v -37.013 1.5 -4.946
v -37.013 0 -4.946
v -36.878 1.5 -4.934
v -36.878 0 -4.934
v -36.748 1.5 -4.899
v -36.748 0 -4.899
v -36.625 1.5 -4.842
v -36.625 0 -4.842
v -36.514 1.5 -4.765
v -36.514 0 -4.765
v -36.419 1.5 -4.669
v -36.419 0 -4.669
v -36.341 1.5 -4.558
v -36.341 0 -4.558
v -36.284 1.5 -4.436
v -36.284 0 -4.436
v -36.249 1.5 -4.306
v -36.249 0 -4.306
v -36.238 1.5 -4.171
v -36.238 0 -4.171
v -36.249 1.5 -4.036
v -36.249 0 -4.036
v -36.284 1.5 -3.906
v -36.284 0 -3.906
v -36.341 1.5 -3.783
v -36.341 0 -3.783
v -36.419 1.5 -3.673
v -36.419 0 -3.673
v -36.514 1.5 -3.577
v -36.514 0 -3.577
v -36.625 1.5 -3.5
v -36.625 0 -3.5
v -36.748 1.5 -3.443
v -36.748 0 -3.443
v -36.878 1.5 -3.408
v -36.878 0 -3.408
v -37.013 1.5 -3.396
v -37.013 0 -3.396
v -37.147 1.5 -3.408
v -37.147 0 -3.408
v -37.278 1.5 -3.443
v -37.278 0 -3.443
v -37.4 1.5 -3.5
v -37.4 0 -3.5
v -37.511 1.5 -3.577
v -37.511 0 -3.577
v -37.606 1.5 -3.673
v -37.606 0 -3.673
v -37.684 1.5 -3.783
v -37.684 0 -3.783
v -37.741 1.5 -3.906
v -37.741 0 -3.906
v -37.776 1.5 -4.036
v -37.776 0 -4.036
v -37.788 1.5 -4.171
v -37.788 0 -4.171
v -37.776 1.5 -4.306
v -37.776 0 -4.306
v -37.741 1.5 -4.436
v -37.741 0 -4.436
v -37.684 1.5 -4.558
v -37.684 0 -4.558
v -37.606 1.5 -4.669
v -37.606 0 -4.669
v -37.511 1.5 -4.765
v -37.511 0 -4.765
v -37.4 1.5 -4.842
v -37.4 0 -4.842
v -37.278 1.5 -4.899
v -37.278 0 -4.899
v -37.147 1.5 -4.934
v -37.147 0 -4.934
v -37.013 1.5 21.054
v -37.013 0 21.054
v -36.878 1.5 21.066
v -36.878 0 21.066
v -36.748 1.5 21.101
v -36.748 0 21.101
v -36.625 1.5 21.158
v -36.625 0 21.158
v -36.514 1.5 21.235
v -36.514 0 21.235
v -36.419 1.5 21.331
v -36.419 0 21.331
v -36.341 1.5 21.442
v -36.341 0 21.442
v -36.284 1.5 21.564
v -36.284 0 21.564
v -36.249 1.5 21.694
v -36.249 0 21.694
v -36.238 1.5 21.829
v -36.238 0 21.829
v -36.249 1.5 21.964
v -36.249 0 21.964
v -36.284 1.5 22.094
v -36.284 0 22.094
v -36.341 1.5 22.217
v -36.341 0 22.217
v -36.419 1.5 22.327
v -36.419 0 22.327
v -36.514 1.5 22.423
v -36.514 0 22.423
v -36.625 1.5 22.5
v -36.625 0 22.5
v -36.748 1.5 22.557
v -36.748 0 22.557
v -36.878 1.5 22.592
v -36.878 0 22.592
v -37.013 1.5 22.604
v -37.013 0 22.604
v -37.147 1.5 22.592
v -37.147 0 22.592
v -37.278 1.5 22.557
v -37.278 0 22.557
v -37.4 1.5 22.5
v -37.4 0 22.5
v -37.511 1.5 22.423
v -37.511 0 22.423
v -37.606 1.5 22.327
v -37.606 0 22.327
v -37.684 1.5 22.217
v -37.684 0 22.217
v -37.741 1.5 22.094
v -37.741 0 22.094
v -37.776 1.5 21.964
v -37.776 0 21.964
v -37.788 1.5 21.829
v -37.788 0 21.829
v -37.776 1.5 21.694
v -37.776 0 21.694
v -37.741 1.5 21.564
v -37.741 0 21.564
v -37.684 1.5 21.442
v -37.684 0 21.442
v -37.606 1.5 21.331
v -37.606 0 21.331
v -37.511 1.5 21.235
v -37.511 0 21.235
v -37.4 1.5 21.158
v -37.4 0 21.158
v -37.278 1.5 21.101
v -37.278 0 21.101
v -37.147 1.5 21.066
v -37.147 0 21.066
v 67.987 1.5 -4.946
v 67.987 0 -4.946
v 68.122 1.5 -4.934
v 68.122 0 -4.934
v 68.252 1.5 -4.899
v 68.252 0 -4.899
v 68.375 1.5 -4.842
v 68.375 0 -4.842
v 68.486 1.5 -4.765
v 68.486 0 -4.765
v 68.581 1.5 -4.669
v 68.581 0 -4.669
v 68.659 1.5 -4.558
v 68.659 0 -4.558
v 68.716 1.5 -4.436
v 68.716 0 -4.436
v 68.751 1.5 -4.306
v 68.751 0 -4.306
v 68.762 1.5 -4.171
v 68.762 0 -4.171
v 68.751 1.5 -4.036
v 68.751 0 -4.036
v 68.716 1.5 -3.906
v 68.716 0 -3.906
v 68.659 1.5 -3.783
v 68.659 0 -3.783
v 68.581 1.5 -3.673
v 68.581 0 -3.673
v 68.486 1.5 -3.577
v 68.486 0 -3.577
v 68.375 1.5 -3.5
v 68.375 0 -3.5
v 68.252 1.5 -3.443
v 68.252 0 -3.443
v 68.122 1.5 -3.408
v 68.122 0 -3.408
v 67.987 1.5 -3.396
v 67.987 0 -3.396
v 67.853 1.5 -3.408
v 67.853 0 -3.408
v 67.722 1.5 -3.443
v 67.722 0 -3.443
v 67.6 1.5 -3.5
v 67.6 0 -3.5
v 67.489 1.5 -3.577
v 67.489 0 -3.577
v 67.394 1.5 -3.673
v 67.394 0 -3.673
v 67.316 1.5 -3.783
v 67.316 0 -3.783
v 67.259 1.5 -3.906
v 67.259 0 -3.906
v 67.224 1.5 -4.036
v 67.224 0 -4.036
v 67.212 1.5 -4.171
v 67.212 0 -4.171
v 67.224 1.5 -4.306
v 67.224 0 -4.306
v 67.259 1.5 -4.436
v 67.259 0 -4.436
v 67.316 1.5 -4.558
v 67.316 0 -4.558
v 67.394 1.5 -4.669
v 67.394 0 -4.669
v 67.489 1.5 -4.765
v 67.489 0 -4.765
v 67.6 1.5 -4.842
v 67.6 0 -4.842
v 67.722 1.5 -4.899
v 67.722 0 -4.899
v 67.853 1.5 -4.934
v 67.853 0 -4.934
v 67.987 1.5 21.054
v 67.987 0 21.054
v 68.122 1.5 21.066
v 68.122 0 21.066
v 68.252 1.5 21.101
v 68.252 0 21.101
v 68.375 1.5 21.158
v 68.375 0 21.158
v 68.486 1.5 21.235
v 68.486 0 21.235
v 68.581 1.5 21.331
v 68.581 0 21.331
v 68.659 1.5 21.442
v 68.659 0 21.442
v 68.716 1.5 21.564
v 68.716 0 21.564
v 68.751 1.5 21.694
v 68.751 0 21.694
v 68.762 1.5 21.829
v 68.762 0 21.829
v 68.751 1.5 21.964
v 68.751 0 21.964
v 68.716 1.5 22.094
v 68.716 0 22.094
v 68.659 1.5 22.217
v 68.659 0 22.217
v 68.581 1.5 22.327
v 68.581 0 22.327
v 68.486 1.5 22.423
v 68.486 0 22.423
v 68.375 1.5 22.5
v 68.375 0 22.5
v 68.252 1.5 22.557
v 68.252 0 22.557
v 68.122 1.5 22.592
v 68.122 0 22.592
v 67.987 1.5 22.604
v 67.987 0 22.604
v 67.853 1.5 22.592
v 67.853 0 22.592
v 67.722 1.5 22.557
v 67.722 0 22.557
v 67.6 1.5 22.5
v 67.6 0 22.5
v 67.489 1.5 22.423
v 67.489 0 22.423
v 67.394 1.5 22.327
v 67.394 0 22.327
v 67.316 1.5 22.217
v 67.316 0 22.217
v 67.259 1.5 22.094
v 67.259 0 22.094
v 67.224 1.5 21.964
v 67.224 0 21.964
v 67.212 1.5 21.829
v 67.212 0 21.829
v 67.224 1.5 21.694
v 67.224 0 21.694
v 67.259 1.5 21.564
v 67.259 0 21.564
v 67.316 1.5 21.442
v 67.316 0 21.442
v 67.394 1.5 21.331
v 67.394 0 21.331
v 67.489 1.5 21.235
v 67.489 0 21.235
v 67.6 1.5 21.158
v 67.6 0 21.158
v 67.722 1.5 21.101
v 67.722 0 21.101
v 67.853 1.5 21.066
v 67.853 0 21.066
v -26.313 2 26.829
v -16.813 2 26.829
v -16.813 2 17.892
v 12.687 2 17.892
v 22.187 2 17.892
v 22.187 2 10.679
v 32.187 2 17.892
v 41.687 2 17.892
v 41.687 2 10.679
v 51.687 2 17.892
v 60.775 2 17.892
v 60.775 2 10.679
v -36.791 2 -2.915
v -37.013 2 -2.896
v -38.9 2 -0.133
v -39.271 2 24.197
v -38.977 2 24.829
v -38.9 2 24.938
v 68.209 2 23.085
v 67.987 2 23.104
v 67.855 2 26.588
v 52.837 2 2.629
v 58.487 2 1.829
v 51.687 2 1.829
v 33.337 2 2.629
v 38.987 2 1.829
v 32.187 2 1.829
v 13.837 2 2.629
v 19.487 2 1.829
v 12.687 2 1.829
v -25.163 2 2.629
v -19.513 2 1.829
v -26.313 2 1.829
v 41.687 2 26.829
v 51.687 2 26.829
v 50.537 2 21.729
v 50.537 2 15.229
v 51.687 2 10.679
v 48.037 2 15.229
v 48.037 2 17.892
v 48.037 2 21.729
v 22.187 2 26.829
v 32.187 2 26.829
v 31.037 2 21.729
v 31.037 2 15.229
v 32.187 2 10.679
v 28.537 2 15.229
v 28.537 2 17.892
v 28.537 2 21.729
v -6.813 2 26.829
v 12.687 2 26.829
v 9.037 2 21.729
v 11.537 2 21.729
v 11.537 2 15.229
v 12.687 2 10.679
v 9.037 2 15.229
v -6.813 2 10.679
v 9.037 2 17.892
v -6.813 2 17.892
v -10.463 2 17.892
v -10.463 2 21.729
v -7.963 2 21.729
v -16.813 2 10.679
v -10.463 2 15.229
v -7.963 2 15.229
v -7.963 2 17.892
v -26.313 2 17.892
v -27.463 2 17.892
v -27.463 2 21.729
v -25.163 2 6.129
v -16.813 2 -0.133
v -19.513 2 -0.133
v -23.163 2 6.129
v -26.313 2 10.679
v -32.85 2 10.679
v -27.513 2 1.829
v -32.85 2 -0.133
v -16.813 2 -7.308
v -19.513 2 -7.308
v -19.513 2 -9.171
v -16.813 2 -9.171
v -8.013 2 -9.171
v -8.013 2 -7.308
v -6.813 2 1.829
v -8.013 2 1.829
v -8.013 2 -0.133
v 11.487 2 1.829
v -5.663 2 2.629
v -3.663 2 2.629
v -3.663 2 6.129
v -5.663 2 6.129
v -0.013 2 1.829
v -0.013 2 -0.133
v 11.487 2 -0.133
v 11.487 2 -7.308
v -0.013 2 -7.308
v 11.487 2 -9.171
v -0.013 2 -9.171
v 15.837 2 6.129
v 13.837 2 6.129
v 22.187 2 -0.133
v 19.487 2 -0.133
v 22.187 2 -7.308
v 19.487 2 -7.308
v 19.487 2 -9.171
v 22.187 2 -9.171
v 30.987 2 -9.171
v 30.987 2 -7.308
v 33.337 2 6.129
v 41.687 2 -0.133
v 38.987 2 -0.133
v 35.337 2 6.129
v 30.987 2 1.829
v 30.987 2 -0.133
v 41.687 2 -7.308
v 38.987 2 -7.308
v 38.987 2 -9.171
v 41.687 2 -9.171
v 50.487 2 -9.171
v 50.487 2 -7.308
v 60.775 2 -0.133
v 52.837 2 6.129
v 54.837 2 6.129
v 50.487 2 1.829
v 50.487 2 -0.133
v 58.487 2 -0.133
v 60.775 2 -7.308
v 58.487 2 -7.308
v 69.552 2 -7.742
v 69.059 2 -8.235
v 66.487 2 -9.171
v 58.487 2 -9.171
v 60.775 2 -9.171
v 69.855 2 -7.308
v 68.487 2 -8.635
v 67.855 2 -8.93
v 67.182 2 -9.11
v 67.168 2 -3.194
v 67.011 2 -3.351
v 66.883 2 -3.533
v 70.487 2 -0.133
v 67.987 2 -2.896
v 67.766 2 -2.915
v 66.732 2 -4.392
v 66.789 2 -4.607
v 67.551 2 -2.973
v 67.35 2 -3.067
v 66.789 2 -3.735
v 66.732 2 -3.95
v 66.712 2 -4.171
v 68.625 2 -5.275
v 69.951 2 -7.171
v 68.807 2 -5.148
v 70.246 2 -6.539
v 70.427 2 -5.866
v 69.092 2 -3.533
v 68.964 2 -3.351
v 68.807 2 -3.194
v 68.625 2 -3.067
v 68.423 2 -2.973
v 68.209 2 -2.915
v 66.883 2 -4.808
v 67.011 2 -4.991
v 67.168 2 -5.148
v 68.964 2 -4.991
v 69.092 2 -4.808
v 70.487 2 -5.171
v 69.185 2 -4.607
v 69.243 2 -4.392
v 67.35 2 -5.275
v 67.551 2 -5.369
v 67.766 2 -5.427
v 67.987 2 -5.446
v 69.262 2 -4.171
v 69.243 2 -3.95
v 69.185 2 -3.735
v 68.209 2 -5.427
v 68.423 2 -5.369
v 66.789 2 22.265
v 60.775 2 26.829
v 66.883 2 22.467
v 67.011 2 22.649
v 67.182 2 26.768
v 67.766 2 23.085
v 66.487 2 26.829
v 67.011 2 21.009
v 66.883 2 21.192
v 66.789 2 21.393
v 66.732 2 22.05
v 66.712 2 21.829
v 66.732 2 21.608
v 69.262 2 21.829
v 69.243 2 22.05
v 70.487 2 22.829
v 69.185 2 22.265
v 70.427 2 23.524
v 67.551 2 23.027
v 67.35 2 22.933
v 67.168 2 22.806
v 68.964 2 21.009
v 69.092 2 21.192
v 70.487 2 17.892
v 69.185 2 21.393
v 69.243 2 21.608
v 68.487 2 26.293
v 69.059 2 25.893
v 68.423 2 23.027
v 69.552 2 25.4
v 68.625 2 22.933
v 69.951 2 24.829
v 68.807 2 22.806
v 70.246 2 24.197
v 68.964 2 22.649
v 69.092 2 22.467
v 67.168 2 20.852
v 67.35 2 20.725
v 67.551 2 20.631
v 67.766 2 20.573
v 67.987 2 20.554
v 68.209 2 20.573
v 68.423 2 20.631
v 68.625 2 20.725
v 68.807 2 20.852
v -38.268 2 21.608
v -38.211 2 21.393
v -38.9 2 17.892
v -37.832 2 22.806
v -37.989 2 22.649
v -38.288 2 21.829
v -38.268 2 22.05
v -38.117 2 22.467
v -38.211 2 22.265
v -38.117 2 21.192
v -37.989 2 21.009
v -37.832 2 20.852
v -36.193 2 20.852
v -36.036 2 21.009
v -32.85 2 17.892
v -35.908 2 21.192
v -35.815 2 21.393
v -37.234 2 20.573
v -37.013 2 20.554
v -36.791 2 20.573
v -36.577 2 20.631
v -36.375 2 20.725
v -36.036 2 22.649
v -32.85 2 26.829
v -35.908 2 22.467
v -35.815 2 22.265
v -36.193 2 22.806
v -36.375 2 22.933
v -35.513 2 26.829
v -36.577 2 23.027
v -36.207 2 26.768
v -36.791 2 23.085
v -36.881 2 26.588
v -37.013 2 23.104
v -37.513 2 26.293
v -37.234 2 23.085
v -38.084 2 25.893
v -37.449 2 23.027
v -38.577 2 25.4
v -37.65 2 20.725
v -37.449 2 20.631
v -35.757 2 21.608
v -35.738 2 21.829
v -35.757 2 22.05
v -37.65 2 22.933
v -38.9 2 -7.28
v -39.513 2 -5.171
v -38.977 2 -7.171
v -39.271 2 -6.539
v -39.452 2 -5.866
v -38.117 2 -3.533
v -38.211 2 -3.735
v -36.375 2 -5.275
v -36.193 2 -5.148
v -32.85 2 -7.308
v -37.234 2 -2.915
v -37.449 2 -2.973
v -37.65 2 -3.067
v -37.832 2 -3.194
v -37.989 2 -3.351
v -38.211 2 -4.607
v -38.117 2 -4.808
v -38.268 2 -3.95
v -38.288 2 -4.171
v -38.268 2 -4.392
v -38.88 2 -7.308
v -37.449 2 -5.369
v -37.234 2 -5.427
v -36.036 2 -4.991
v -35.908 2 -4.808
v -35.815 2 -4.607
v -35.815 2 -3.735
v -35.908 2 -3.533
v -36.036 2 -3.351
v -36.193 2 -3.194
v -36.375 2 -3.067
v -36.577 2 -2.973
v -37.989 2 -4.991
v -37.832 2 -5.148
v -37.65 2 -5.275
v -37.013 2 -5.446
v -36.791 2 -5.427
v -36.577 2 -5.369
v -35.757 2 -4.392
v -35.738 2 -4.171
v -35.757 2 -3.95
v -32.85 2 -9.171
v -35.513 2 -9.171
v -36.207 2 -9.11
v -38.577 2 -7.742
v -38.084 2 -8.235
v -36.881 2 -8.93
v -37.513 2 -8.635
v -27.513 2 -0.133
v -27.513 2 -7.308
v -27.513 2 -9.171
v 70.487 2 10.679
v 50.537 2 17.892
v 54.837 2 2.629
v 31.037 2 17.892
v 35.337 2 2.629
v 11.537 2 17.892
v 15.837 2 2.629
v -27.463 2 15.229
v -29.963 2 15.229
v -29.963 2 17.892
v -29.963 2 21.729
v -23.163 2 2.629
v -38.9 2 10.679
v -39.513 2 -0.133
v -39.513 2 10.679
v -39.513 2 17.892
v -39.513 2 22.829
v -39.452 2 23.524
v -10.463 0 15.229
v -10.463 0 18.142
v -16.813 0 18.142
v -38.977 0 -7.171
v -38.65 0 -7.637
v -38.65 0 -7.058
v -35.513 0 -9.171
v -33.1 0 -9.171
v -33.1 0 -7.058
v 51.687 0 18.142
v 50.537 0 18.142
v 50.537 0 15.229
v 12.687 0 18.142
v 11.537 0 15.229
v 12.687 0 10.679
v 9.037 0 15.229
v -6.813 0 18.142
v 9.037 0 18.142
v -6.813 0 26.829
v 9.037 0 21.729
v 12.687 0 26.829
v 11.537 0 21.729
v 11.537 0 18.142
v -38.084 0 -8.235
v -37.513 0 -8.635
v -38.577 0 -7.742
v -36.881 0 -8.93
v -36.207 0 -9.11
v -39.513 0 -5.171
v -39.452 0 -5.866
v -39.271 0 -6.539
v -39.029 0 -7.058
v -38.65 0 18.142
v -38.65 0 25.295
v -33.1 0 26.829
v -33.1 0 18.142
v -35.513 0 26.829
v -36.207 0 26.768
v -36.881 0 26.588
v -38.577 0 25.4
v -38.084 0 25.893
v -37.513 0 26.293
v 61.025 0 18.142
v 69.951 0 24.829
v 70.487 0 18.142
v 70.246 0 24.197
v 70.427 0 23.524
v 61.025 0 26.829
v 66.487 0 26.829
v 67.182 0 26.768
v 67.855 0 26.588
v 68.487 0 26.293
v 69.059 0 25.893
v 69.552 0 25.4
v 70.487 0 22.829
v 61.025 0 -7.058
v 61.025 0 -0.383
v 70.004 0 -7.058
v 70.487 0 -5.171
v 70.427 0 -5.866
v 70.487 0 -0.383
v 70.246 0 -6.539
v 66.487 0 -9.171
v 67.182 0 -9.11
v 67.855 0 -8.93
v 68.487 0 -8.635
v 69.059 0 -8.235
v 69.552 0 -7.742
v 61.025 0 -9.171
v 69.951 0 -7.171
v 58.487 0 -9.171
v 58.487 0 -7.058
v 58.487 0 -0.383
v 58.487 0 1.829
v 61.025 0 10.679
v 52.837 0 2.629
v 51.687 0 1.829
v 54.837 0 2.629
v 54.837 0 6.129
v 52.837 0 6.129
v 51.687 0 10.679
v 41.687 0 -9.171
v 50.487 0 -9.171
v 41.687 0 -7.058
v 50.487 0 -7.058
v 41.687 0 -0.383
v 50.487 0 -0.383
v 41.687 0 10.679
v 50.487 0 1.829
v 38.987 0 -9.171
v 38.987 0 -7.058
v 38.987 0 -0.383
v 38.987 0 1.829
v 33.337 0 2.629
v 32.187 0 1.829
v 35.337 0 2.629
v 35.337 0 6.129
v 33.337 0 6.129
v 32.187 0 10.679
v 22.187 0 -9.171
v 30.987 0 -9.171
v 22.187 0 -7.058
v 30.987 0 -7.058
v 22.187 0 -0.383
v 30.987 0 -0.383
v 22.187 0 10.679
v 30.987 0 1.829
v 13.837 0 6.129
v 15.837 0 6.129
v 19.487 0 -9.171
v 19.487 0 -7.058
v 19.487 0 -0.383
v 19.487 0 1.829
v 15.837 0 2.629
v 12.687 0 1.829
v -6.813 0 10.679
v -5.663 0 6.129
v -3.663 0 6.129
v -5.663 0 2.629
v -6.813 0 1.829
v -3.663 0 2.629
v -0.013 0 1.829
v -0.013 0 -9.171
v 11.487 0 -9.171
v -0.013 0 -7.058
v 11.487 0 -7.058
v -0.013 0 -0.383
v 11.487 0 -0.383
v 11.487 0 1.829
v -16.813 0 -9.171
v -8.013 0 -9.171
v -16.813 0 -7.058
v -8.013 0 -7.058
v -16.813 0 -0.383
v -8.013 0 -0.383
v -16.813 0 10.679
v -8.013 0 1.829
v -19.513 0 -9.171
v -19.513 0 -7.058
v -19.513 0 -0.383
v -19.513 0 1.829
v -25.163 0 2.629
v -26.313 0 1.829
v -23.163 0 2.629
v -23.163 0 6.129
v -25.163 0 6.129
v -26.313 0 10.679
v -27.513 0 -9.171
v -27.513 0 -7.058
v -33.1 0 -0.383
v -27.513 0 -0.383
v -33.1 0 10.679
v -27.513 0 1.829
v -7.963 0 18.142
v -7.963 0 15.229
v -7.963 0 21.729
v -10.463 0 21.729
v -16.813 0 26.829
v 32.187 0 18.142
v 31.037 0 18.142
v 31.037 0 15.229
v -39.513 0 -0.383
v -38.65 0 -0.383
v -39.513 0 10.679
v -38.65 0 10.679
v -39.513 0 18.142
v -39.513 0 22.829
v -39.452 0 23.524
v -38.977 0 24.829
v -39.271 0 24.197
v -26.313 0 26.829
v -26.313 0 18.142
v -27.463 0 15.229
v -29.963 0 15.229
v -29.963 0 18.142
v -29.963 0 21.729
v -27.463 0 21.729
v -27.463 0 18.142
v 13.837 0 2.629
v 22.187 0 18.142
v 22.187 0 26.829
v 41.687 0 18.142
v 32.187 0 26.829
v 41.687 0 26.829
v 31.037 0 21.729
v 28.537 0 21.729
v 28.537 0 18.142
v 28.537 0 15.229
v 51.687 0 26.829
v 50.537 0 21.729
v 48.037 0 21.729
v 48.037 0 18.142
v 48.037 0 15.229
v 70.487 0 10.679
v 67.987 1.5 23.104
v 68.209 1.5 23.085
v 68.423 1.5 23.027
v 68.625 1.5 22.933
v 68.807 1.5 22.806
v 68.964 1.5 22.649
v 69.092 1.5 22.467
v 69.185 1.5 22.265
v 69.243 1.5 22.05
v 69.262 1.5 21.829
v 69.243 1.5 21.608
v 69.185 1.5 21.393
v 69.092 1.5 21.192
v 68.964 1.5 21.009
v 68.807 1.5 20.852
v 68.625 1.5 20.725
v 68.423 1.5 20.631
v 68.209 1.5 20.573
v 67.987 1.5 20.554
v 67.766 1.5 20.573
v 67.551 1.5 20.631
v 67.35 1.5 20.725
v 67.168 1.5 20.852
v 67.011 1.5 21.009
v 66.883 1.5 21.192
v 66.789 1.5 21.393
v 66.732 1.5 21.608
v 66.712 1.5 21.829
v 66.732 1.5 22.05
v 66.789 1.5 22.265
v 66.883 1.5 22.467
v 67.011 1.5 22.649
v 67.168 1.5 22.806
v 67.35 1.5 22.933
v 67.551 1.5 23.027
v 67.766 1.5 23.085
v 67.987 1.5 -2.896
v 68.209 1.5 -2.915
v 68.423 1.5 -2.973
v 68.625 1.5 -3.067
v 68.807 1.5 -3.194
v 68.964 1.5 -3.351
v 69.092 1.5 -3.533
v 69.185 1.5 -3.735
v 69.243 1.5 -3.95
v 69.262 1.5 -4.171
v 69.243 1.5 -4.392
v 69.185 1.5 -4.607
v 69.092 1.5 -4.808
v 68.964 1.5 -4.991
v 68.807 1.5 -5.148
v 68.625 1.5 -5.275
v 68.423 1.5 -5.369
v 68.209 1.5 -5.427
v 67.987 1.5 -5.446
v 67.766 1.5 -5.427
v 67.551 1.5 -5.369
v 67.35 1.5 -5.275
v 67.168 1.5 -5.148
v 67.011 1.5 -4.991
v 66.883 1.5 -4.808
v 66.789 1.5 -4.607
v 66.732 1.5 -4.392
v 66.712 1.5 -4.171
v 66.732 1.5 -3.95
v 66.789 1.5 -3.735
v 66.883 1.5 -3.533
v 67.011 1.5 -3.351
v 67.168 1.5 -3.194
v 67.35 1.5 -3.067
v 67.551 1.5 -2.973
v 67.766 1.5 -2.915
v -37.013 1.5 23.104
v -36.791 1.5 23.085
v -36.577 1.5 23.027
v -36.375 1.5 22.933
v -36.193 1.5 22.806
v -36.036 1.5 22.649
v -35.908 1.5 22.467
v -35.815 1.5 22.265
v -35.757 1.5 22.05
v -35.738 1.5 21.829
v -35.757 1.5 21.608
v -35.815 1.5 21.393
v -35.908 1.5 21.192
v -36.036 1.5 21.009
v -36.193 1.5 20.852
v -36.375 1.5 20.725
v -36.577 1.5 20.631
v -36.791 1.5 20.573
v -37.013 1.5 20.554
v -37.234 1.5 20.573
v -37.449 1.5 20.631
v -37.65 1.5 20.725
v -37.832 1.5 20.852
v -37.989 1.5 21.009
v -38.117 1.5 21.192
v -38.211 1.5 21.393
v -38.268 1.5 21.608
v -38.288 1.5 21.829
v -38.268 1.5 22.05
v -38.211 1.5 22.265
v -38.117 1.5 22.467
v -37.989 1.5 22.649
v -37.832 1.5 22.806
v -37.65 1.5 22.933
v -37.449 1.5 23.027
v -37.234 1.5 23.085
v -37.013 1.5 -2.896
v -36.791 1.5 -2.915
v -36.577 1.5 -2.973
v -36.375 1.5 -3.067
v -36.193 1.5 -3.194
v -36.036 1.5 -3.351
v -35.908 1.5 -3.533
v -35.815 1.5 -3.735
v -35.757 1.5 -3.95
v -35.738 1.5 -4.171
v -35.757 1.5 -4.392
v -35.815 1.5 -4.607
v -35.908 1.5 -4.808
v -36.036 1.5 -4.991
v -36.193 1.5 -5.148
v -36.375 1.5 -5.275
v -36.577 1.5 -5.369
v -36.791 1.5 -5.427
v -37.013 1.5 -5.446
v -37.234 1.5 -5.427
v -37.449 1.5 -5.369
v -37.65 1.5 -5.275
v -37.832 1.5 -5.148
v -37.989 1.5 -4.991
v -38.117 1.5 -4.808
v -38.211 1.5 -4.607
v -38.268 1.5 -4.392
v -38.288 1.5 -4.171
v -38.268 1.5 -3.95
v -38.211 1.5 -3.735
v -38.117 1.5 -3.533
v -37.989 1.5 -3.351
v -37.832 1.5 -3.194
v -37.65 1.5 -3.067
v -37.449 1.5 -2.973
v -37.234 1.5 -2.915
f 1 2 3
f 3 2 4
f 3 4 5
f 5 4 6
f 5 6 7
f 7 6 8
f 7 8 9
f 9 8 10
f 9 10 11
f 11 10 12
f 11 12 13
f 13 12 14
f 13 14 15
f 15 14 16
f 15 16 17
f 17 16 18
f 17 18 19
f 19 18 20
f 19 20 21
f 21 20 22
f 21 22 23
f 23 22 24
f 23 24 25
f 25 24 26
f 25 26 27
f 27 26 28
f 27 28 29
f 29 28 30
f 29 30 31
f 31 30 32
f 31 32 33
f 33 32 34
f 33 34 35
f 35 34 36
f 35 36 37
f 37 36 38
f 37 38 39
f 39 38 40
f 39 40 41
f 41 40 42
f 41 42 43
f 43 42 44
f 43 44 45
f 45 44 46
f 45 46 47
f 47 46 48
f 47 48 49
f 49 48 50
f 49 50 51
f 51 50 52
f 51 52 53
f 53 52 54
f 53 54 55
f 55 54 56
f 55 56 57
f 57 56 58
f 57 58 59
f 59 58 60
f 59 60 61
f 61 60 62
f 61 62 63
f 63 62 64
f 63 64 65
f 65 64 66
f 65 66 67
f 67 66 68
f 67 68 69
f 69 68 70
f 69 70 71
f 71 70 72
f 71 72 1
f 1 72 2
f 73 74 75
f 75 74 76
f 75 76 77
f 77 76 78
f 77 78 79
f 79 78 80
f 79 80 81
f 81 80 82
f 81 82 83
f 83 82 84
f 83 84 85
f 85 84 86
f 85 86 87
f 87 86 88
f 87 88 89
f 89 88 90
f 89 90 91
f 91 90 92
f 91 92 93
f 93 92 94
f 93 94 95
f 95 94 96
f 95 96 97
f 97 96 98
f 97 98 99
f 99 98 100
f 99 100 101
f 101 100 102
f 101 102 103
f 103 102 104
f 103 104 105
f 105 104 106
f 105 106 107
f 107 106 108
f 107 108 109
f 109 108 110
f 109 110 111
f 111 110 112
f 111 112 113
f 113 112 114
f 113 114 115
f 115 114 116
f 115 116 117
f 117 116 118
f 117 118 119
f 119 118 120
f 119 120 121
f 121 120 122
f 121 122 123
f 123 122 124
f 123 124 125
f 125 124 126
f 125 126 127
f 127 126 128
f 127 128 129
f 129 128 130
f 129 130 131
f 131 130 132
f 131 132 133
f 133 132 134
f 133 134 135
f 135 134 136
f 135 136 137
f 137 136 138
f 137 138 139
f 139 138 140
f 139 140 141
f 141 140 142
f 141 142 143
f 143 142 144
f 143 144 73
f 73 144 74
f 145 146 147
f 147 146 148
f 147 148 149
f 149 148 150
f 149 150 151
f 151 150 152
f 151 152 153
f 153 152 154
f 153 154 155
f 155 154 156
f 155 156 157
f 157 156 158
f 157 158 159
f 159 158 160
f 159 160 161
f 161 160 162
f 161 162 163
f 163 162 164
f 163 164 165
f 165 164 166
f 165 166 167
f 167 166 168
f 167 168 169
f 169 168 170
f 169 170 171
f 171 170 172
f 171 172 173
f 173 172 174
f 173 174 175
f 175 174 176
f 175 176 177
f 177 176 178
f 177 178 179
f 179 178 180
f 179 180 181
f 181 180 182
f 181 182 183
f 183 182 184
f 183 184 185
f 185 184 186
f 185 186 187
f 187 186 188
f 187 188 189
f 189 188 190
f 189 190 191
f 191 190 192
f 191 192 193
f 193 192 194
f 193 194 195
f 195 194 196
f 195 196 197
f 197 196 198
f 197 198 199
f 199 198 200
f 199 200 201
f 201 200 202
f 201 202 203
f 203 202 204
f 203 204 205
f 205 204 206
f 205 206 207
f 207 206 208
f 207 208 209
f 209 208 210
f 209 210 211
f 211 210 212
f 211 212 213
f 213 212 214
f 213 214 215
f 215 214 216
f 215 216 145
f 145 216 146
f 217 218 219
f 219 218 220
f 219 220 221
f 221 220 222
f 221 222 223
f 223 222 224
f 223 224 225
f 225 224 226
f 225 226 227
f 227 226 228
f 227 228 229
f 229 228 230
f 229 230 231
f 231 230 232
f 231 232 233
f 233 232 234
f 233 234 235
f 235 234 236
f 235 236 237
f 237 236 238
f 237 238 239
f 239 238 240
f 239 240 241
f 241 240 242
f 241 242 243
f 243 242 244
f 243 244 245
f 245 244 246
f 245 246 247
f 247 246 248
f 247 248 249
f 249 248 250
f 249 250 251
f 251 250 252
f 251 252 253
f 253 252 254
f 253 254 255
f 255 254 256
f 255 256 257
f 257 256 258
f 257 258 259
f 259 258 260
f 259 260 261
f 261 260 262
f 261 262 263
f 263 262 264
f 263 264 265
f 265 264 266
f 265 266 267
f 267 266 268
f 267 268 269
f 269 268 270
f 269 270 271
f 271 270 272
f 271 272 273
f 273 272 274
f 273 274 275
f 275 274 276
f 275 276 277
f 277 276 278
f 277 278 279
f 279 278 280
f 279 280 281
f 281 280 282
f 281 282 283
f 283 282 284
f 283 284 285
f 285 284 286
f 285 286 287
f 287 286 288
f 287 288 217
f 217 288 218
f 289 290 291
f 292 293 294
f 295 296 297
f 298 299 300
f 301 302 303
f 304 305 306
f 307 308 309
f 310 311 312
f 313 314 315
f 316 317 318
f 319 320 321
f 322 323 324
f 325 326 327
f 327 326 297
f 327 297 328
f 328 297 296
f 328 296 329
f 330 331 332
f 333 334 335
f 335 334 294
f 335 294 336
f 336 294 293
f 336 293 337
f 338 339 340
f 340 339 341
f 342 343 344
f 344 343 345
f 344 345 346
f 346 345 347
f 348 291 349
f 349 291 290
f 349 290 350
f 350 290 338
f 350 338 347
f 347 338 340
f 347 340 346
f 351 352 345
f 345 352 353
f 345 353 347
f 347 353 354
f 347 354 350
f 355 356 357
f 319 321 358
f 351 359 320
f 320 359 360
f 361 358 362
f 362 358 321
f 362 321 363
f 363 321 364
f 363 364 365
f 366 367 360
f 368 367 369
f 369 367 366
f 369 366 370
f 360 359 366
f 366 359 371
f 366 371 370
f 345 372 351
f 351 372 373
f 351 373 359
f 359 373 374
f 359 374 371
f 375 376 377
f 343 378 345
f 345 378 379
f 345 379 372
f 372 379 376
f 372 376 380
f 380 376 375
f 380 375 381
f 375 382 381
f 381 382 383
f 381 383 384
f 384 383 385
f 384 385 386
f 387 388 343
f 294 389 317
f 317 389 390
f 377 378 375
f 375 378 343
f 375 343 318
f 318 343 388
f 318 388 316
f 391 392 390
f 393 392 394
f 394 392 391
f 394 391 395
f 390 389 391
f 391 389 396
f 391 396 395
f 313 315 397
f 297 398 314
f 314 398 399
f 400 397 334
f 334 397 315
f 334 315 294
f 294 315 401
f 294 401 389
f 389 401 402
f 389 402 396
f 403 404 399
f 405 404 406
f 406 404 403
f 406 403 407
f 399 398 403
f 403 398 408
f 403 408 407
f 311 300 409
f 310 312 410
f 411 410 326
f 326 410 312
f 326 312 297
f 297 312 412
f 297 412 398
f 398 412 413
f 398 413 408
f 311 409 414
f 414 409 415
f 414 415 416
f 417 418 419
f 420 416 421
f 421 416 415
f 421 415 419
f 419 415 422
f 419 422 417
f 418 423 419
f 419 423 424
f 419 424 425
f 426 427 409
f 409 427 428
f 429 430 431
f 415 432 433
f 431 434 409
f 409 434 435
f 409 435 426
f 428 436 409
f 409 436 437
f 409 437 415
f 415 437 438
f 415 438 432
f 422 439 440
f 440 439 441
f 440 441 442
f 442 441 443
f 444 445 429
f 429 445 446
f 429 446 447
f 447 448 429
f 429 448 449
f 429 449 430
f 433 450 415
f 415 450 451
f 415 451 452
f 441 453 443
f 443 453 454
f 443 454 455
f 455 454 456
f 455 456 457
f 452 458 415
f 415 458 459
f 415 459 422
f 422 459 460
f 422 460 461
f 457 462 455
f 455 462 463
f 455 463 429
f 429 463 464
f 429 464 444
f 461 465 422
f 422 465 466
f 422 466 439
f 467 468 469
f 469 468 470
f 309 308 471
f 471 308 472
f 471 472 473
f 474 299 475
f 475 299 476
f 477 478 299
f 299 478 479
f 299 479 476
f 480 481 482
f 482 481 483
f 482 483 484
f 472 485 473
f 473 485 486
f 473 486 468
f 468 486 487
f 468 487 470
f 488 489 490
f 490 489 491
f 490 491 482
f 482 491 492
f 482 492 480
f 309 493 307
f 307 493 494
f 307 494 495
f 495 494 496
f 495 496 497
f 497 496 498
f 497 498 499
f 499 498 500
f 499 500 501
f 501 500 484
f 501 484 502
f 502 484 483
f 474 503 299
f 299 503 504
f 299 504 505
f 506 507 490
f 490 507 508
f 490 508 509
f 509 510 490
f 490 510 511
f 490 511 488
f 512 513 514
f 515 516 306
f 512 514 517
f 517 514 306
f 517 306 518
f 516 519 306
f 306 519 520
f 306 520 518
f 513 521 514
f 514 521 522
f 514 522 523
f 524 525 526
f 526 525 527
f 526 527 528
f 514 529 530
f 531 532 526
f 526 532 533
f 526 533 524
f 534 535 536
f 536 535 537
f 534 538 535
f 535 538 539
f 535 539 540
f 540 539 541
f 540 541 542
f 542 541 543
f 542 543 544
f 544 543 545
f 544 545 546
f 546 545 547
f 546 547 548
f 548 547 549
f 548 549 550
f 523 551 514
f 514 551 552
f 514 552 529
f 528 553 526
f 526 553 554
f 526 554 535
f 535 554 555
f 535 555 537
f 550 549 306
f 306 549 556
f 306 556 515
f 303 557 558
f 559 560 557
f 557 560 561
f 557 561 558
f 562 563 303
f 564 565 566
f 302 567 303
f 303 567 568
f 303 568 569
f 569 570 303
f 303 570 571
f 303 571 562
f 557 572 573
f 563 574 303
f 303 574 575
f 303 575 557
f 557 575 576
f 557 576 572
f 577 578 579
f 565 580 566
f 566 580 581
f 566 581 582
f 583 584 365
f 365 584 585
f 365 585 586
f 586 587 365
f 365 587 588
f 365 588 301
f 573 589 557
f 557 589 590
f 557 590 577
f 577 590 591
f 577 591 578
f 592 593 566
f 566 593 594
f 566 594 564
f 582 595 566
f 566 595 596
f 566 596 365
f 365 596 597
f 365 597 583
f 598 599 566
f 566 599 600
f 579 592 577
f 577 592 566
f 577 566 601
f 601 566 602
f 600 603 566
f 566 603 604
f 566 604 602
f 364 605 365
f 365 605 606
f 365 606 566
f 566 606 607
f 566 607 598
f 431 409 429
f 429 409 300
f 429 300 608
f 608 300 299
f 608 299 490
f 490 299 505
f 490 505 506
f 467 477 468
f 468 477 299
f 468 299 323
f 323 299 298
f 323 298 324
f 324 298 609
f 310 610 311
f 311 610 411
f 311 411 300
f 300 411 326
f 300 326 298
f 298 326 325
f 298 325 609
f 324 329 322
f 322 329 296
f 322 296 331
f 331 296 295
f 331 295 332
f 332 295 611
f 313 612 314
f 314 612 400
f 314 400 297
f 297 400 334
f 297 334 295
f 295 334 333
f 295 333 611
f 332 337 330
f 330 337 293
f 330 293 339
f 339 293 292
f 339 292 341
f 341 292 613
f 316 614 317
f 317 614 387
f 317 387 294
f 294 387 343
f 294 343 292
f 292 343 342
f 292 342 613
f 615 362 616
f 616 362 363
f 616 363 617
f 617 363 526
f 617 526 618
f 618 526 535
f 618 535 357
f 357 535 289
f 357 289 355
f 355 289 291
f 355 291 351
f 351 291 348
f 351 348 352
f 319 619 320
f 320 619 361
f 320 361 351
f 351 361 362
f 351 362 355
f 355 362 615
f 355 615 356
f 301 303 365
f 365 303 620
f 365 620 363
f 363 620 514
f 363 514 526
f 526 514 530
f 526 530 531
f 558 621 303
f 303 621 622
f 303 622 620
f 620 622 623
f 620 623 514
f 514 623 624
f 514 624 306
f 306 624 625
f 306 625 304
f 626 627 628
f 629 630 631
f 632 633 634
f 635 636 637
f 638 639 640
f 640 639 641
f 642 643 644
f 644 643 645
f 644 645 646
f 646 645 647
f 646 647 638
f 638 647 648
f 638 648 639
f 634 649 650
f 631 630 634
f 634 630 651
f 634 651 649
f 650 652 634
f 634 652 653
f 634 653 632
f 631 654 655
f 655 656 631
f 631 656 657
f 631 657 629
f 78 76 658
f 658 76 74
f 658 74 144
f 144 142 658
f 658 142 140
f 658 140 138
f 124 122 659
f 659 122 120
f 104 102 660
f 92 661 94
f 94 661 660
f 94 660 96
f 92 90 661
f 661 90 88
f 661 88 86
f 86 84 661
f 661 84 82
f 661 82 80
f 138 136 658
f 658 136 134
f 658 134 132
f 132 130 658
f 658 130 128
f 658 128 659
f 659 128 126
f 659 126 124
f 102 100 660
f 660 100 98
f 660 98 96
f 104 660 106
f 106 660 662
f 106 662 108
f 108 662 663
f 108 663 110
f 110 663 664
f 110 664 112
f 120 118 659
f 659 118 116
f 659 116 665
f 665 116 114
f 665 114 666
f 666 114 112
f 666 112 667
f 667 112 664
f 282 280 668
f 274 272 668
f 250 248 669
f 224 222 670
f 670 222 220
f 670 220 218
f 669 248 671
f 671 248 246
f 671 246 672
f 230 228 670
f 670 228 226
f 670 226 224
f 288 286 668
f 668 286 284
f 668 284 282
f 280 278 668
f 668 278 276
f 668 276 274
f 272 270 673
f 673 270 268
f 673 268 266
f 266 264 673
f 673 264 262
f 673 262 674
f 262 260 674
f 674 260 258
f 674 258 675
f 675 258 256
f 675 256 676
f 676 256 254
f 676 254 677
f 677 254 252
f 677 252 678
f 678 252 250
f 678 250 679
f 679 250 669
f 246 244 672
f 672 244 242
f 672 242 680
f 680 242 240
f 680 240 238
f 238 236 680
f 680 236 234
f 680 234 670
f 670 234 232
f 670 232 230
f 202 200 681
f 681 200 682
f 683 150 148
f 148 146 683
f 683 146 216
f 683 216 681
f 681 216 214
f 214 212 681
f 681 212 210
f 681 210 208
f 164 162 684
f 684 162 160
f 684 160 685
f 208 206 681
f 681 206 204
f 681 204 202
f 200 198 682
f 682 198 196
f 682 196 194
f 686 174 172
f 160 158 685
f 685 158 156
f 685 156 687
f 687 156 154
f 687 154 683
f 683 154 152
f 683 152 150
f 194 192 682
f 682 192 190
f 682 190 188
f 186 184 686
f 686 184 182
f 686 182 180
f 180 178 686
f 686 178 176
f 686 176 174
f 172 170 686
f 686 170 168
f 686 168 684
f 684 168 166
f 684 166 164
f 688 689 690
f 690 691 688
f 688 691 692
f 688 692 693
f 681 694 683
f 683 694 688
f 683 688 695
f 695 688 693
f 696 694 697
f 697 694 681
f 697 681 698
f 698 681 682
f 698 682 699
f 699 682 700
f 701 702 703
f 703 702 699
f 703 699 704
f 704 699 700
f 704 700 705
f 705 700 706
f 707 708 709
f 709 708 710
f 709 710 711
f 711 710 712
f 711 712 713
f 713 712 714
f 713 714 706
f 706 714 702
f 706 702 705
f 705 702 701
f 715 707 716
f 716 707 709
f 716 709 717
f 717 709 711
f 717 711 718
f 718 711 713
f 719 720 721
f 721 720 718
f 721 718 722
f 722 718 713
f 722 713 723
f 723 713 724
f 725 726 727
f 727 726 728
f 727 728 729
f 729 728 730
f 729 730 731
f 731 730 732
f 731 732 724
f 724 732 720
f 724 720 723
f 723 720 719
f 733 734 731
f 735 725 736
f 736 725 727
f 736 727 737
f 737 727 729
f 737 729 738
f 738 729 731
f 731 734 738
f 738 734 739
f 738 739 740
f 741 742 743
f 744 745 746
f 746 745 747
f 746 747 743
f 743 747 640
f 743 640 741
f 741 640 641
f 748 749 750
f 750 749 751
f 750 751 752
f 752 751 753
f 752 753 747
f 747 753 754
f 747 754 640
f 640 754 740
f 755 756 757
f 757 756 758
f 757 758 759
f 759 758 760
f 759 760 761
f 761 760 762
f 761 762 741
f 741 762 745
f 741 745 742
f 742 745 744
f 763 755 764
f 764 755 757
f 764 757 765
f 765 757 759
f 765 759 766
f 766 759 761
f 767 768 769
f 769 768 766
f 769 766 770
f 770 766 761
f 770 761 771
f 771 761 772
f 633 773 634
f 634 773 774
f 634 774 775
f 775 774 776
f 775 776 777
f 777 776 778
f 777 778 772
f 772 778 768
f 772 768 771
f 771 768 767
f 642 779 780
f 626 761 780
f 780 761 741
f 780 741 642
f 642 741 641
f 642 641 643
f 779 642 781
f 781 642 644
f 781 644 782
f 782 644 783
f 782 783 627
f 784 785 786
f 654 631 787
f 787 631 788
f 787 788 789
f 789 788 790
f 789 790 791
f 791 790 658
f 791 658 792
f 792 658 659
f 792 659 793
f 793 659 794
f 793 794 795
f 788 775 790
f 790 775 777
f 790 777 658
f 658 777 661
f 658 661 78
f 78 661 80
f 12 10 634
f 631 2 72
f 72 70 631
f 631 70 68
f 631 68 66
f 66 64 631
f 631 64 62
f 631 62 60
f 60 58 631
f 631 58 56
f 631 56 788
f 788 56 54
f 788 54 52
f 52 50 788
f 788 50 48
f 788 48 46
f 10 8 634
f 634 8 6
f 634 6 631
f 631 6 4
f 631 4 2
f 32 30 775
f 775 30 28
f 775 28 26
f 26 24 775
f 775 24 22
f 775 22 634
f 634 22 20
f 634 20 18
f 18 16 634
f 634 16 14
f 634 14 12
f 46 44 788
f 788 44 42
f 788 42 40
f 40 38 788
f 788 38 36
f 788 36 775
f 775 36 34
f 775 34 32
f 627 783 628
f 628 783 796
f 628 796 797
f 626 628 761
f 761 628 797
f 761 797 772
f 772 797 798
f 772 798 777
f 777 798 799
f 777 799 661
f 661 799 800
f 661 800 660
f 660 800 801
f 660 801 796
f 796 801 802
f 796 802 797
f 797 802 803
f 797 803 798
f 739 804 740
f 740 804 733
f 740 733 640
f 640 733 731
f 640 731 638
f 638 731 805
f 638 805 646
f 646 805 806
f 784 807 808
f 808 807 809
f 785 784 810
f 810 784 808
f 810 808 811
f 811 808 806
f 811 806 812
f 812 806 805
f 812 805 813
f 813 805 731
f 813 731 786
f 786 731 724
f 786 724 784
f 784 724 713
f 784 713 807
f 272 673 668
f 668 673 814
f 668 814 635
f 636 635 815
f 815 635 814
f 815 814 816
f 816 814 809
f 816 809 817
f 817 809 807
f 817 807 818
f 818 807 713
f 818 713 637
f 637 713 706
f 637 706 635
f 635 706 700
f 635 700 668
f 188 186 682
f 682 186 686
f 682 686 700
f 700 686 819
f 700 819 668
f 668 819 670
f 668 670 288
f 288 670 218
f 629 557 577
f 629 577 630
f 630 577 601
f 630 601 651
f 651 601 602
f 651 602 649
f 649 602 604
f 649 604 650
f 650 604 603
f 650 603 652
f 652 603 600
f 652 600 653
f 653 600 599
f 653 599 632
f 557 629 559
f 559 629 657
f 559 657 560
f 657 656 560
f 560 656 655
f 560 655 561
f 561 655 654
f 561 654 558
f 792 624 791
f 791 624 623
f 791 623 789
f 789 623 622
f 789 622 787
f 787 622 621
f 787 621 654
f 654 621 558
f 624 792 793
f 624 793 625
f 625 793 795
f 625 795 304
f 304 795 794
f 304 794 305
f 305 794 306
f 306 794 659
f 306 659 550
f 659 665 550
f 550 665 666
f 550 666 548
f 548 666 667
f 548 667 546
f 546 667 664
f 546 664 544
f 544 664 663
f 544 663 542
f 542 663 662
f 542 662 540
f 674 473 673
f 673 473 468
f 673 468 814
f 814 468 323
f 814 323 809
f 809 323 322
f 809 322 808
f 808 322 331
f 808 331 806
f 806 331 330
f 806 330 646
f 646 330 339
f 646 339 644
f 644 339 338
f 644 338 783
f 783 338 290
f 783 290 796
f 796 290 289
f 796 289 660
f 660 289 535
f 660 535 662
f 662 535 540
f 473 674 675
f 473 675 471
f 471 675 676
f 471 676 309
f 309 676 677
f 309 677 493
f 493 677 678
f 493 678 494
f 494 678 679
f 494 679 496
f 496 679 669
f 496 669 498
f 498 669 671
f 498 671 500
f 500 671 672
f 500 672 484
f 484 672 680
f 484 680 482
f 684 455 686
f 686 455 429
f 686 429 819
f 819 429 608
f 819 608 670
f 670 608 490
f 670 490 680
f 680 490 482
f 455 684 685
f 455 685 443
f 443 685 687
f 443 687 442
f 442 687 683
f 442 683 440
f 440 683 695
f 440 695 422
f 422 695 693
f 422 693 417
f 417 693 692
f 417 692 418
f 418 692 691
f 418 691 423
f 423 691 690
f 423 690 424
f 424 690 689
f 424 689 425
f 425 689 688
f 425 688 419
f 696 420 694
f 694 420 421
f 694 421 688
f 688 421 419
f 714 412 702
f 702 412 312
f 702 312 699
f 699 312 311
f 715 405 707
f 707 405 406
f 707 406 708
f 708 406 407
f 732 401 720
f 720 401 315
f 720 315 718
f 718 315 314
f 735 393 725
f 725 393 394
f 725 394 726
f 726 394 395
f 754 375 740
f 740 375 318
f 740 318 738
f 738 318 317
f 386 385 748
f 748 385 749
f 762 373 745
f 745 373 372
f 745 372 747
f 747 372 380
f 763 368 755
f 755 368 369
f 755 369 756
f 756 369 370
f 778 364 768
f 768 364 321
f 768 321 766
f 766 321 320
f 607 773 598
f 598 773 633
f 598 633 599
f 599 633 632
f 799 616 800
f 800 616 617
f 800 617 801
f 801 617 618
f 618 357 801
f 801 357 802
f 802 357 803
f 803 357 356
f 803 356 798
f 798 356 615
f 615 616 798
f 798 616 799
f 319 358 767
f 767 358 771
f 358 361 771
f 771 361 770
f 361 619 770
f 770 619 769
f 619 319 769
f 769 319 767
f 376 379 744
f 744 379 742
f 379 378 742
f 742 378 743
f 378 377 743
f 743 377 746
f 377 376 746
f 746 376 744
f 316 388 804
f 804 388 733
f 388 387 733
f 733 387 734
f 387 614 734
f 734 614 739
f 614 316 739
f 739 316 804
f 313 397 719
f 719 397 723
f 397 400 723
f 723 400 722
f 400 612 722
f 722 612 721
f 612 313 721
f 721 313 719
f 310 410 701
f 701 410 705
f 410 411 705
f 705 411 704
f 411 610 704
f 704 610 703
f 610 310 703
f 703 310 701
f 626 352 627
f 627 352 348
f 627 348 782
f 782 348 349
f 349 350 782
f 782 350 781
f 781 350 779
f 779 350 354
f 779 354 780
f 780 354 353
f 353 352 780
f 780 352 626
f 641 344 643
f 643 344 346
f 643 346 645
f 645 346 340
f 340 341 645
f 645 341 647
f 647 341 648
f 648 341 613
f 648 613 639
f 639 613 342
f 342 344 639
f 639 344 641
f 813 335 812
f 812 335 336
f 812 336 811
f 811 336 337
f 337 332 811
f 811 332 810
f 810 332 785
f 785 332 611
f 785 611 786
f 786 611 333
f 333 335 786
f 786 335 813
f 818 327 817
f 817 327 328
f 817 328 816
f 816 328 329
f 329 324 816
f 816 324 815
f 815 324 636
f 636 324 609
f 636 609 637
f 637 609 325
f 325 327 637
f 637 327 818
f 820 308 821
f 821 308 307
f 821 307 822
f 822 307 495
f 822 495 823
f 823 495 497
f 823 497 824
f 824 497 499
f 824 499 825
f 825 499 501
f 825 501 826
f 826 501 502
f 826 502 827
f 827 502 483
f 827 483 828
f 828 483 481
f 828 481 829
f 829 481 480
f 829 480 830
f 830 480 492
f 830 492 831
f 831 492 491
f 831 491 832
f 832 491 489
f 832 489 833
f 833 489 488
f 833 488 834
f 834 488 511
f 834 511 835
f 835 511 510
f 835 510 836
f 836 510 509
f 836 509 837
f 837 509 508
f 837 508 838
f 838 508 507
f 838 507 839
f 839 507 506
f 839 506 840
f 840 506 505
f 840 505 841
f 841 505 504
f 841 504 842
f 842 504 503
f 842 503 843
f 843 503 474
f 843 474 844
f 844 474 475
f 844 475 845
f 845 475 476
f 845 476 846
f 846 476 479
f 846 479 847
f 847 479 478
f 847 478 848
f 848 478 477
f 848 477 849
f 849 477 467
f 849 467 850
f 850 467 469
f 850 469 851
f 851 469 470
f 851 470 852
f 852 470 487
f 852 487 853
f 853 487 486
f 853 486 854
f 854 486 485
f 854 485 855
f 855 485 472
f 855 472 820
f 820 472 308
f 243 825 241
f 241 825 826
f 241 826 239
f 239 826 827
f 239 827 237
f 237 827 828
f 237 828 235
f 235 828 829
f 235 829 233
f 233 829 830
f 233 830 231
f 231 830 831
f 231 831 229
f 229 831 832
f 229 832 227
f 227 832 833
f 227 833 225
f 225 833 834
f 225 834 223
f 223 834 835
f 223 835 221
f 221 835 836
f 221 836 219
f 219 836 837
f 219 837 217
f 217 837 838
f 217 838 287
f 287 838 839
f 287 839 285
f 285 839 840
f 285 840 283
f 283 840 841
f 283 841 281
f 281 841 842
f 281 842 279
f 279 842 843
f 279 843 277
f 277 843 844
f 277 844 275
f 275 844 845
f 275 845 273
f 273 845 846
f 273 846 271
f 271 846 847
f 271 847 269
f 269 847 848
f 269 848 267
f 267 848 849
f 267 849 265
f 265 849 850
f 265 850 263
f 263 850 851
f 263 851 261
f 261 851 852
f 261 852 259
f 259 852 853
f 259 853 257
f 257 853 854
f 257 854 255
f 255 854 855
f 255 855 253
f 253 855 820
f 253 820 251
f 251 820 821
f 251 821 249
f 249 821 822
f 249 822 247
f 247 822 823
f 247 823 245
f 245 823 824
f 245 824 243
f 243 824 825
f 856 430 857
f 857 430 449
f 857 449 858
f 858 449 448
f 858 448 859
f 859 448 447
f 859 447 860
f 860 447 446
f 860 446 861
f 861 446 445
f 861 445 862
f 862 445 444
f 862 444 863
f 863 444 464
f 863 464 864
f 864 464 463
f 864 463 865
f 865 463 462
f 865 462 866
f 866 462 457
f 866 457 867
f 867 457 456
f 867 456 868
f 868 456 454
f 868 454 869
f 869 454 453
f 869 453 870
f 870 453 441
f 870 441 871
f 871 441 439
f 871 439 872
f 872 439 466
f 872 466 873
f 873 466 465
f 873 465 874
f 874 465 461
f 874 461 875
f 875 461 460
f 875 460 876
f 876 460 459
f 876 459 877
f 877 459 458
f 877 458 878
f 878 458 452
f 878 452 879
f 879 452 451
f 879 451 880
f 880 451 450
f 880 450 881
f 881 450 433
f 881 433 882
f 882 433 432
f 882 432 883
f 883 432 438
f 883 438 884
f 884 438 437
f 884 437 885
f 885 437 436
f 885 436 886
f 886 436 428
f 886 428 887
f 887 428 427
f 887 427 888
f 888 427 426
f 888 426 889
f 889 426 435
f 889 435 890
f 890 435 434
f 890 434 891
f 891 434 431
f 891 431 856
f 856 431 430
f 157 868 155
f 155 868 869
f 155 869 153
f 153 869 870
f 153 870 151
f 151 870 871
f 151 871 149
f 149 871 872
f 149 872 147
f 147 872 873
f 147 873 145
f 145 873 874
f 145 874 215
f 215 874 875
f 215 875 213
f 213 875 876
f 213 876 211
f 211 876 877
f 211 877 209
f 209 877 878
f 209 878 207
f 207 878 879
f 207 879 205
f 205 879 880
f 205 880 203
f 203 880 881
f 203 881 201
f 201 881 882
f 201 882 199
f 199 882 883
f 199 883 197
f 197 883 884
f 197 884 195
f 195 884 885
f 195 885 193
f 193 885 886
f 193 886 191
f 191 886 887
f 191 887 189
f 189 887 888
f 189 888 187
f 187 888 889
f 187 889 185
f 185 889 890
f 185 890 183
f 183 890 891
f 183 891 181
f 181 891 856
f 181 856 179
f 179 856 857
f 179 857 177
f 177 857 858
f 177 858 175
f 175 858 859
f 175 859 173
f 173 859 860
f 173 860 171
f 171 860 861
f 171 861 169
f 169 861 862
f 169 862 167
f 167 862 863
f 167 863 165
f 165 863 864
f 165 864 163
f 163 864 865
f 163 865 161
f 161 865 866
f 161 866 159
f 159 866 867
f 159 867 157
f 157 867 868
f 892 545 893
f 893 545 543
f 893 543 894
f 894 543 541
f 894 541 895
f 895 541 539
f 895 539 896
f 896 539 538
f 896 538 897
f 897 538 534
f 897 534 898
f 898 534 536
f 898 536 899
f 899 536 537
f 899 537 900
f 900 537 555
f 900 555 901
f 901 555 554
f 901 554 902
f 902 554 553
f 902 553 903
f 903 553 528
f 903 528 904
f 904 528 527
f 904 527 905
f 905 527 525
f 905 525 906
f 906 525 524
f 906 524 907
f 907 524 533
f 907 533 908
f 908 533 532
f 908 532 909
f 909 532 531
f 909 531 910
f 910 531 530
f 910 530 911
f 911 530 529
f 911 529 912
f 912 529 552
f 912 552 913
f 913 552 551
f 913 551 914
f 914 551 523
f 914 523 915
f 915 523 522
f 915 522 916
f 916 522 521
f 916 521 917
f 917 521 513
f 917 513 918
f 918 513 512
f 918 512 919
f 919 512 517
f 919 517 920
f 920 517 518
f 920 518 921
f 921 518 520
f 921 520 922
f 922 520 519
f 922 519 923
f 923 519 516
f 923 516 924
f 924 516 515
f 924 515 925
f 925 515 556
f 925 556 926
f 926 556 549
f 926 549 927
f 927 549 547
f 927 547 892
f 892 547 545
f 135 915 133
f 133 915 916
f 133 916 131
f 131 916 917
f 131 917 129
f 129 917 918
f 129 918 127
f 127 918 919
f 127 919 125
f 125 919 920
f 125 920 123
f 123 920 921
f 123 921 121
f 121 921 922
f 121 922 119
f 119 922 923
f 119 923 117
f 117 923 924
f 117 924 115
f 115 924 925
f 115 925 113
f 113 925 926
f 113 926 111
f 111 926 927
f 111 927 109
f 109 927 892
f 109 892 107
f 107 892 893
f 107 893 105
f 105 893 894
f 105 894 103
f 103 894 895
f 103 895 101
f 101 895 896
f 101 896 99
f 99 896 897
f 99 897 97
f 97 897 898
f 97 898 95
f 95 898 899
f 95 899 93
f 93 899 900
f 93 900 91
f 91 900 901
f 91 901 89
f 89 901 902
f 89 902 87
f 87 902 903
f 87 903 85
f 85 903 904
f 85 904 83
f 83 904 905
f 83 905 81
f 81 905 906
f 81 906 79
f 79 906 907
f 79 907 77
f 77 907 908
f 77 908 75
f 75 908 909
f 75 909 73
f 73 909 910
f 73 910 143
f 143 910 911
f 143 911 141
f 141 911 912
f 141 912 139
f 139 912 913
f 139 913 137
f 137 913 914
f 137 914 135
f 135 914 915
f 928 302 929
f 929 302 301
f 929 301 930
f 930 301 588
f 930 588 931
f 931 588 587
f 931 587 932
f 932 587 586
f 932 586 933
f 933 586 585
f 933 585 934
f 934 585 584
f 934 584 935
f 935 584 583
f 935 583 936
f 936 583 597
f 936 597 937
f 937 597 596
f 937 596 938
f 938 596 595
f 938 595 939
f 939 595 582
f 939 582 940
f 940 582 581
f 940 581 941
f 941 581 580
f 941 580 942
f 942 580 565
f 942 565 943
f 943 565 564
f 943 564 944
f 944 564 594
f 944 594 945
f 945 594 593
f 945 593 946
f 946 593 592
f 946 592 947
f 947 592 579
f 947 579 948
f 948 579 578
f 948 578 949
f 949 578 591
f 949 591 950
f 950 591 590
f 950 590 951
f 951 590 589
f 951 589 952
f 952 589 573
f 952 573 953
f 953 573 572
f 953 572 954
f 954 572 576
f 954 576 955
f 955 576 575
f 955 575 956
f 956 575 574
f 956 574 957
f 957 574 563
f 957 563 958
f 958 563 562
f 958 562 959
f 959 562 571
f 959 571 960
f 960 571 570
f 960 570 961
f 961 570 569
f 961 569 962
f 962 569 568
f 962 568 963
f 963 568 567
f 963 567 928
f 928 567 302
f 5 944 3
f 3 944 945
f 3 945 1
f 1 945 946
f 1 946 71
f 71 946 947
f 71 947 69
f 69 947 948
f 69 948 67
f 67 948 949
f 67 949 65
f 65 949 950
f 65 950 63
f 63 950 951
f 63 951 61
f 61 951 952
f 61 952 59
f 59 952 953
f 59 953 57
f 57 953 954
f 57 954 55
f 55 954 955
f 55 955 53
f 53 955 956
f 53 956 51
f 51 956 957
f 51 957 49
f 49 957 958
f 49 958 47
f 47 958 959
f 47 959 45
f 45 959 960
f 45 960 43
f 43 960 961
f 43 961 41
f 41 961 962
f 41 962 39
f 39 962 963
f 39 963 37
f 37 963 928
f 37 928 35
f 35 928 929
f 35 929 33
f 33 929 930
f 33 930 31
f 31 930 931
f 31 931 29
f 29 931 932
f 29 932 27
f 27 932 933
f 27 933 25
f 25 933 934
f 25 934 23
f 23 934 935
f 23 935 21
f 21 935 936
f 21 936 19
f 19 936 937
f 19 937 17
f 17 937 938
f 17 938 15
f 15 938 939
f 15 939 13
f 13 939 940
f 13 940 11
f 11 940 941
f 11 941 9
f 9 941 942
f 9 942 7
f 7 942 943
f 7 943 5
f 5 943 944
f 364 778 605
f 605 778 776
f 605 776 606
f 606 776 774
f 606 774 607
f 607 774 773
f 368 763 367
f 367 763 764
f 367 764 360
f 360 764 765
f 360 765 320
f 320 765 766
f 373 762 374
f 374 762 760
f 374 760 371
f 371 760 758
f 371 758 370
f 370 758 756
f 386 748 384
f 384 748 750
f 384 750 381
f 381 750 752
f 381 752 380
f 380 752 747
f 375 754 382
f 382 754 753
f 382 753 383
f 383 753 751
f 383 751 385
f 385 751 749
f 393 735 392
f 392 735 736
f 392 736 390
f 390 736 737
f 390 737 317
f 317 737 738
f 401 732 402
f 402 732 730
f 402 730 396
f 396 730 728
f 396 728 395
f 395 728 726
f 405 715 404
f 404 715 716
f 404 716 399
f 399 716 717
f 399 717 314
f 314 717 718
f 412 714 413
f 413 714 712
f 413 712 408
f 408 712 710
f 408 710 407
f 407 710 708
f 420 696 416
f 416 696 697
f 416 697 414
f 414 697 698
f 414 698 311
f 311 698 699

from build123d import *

# Parameters (mm, degrees)
SKETCH1_R           = 0.775
SKETCH1_W           = 2
SKETCH1_H           = 3.5
SKETCH1_W_2         = 2.5
SKETCH1_H_2         = 6.5
BOSS_EXTRUDE1_DEPTH = 2
SKETCH2_R           = 1.275
CUT_EXTRUDE1_DEPTH  = 0.5
SKETCH3_W           = 8
SKETCH3_H           = 11
CUT_EXTRUDE2_DEPTH  = 3


with BuildPart() as part:
    # Sketch1 → Boss-Extrude1 (new body)
    with BuildSketch(Plane(origin=(0, 0, 0), x_dir=(1, 0, 0), z_dir=(0, 1, 0))):
        with BuildLine():
            Line((-0.26263299, 9.170981105), (-0.26263299, -1.829018895))
            Line((-0.26263299, -1.829018895), (-7.76263299, -1.829018895))
            Line((-7.76263299, -1.829018895), (-7.76263299, 9.170981105))
            Line((-7.76263299, 9.170981105), (-19.76263299, 9.170981105))
            Line((-19.76263299, 9.170981105), (-19.76263299, -1.829018895))
            Line((-19.76263299, -1.829018895), (-27.26263299, -1.829018895))
            Line((-27.26263299, -1.829018895), (-27.26263299, 9.170981105))
            Line((-27.26263299, 9.170981105), (-34.51263299, 9.170981105))
            Line((-34.51263299, 9.170981105), (-35.51263299, 9.170981105))
            ThreePointArc((-35.51263299, 9.170981105), (-38.341060114, 7.99940823), (-39.51263299, 5.170981105))
            Line((-39.51263299, 5.170981105), (-39.51263299, -22.829018895))
            ThreePointArc((-39.51263299, -22.829018895), (-38.341060114, -25.65744602), (-35.51263299, -26.829018895))
            Line((-35.51263299, -26.829018895), (-34.51263299, -26.829018895))
            Line((-34.51263299, -26.829018895), (65.48736701, -26.829018895))
            Line((65.48736701, -26.829018895), (66.48736701, -26.829018895))
            ThreePointArc((66.48736701, -26.829018895), (69.315794135, -25.65744602), (70.48736701, -22.829018895))
            Line((70.48736701, -22.829018895), (70.48736701, 5.170981105))
            ThreePointArc((70.48736701, 5.170981105), (69.315794135, 7.99940823), (66.48736701, 9.170981105))
            Line((66.48736701, 9.170981105), (65.48736701, 9.170981105))
            Line((65.48736701, 9.170981105), (58.23736701, 9.170981105))
            Line((58.23736701, 9.170981105), (58.23736701, -1.829018895))
            Line((58.23736701, -1.829018895), (50.73736701, -1.829018895))
            Line((50.73736701, -1.829018895), (50.73736701, 9.170981105))
            Line((50.73736701, 9.170981105), (38.73736701, 9.170981105))
            Line((38.73736701, 9.170981105), (38.73736701, -1.829018895))
            Line((38.73736701, -1.829018895), (31.23736701, -1.829018895))
            Line((31.23736701, -1.829018895), (31.23736701, 9.170981105))
            Line((31.23736701, 9.170981105), (19.23736701, 9.170981105))
            Line((19.23736701, 9.170981105), (19.23736701, -1.829018895))
            Line((19.23736701, -1.829018895), (11.73736701, -1.829018895))
            Line((11.73736701, -1.829018895), (11.73736701, 9.170981105))
            Line((11.73736701, 9.170981105), (-0.26263299, 9.170981105))
        make_face()
        with Locations((-37.01263299, 4.170981105)):
            Circle(SKETCH1_R, mode=Mode.SUBTRACT)
        with Locations((-37.01263299, -21.829018895)):
            Circle(SKETCH1_R, mode=Mode.SUBTRACT)
        with Locations((67.98736701, 4.170981105)):
            Circle(SKETCH1_R, mode=Mode.SUBTRACT)
        with Locations((67.98736701, -21.829018895)):
            Circle(SKETCH1_R, mode=Mode.SUBTRACT)
        with Locations((-24.16263299, -4.379018895)):
            Rectangle(SKETCH1_W, SKETCH1_H, mode=Mode.SUBTRACT)
        with Locations((-4.66263299, -4.379018895)):
            Rectangle(SKETCH1_W, SKETCH1_H, mode=Mode.SUBTRACT)
        with Locations((14.83736701, -4.379018895)):
            Rectangle(SKETCH1_W, SKETCH1_H, mode=Mode.SUBTRACT)
        with Locations((34.33736701, -4.379018895)):
            Rectangle(SKETCH1_W, SKETCH1_H, mode=Mode.SUBTRACT)
        with Locations((53.83736701, -4.379018895)):
            Rectangle(SKETCH1_W, SKETCH1_H, mode=Mode.SUBTRACT)
        with Locations((-9.21263299, -18.479018895)):
            Rectangle(SKETCH1_W_2, SKETCH1_H_2, mode=Mode.SUBTRACT)
        with Locations((-28.71263299, -18.479018895)):
            Rectangle(SKETCH1_W_2, SKETCH1_H_2, mode=Mode.SUBTRACT)
        with Locations((10.28736701, -18.479018895)):
            Rectangle(SKETCH1_W_2, SKETCH1_H_2, mode=Mode.SUBTRACT)
        with Locations((29.78736701, -18.479018895)):
            Rectangle(SKETCH1_W_2, SKETCH1_H_2, mode=Mode.SUBTRACT)
        with Locations((49.28736701, -18.479018895)):
            Rectangle(SKETCH1_W_2, SKETCH1_H_2, mode=Mode.SUBTRACT)
    extrude(amount=BOSS_EXTRUDE1_DEPTH)

    # Sketch2 → Cut-Extrude1 (cut)
    with BuildSketch(Plane(origin=(0, 2, 0), x_dir=(1, 0, 0), z_dir=(0, 1, 0))):
        with Locations((-37.01263299, 4.170981105)):
            Circle(SKETCH2_R)
        with Locations((-37.01263299, -21.829018895)):
            Circle(SKETCH2_R)
        with Locations((67.98736701, 4.170981105)):
            Circle(SKETCH2_R)
        with Locations((67.98736701, -21.829018895)):
            Circle(SKETCH2_R)
    extrude(amount=-CUT_EXTRUDE1_DEPTH, mode=Mode.SUBTRACT)

    # Sketch3 → Cut-Extrude2 (cut, through all)
    with BuildSketch(Plane(origin=(0, 2, 0), x_dir=(1, 0, 0), z_dir=(0, 1, 0))):
        with Locations((-23.51263299, 3.670981105)):
            Rectangle(SKETCH3_W, SKETCH3_H)
        with Locations((-4.01263299, 3.670981105)):
            Rectangle(SKETCH3_W, SKETCH3_H)
        with Locations((15.48736701, 3.670981105)):
            Rectangle(SKETCH3_W, SKETCH3_H)
        with Locations((34.98736701, 3.670981105)):
            Rectangle(SKETCH3_W, SKETCH3_H)
        with Locations((54.48736701, 3.670981105)):
            Rectangle(SKETCH3_W, SKETCH3_H)
    extrude(amount=-CUT_EXTRUDE2_DEPTH, mode=Mode.SUBTRACT)


solid = part.part
